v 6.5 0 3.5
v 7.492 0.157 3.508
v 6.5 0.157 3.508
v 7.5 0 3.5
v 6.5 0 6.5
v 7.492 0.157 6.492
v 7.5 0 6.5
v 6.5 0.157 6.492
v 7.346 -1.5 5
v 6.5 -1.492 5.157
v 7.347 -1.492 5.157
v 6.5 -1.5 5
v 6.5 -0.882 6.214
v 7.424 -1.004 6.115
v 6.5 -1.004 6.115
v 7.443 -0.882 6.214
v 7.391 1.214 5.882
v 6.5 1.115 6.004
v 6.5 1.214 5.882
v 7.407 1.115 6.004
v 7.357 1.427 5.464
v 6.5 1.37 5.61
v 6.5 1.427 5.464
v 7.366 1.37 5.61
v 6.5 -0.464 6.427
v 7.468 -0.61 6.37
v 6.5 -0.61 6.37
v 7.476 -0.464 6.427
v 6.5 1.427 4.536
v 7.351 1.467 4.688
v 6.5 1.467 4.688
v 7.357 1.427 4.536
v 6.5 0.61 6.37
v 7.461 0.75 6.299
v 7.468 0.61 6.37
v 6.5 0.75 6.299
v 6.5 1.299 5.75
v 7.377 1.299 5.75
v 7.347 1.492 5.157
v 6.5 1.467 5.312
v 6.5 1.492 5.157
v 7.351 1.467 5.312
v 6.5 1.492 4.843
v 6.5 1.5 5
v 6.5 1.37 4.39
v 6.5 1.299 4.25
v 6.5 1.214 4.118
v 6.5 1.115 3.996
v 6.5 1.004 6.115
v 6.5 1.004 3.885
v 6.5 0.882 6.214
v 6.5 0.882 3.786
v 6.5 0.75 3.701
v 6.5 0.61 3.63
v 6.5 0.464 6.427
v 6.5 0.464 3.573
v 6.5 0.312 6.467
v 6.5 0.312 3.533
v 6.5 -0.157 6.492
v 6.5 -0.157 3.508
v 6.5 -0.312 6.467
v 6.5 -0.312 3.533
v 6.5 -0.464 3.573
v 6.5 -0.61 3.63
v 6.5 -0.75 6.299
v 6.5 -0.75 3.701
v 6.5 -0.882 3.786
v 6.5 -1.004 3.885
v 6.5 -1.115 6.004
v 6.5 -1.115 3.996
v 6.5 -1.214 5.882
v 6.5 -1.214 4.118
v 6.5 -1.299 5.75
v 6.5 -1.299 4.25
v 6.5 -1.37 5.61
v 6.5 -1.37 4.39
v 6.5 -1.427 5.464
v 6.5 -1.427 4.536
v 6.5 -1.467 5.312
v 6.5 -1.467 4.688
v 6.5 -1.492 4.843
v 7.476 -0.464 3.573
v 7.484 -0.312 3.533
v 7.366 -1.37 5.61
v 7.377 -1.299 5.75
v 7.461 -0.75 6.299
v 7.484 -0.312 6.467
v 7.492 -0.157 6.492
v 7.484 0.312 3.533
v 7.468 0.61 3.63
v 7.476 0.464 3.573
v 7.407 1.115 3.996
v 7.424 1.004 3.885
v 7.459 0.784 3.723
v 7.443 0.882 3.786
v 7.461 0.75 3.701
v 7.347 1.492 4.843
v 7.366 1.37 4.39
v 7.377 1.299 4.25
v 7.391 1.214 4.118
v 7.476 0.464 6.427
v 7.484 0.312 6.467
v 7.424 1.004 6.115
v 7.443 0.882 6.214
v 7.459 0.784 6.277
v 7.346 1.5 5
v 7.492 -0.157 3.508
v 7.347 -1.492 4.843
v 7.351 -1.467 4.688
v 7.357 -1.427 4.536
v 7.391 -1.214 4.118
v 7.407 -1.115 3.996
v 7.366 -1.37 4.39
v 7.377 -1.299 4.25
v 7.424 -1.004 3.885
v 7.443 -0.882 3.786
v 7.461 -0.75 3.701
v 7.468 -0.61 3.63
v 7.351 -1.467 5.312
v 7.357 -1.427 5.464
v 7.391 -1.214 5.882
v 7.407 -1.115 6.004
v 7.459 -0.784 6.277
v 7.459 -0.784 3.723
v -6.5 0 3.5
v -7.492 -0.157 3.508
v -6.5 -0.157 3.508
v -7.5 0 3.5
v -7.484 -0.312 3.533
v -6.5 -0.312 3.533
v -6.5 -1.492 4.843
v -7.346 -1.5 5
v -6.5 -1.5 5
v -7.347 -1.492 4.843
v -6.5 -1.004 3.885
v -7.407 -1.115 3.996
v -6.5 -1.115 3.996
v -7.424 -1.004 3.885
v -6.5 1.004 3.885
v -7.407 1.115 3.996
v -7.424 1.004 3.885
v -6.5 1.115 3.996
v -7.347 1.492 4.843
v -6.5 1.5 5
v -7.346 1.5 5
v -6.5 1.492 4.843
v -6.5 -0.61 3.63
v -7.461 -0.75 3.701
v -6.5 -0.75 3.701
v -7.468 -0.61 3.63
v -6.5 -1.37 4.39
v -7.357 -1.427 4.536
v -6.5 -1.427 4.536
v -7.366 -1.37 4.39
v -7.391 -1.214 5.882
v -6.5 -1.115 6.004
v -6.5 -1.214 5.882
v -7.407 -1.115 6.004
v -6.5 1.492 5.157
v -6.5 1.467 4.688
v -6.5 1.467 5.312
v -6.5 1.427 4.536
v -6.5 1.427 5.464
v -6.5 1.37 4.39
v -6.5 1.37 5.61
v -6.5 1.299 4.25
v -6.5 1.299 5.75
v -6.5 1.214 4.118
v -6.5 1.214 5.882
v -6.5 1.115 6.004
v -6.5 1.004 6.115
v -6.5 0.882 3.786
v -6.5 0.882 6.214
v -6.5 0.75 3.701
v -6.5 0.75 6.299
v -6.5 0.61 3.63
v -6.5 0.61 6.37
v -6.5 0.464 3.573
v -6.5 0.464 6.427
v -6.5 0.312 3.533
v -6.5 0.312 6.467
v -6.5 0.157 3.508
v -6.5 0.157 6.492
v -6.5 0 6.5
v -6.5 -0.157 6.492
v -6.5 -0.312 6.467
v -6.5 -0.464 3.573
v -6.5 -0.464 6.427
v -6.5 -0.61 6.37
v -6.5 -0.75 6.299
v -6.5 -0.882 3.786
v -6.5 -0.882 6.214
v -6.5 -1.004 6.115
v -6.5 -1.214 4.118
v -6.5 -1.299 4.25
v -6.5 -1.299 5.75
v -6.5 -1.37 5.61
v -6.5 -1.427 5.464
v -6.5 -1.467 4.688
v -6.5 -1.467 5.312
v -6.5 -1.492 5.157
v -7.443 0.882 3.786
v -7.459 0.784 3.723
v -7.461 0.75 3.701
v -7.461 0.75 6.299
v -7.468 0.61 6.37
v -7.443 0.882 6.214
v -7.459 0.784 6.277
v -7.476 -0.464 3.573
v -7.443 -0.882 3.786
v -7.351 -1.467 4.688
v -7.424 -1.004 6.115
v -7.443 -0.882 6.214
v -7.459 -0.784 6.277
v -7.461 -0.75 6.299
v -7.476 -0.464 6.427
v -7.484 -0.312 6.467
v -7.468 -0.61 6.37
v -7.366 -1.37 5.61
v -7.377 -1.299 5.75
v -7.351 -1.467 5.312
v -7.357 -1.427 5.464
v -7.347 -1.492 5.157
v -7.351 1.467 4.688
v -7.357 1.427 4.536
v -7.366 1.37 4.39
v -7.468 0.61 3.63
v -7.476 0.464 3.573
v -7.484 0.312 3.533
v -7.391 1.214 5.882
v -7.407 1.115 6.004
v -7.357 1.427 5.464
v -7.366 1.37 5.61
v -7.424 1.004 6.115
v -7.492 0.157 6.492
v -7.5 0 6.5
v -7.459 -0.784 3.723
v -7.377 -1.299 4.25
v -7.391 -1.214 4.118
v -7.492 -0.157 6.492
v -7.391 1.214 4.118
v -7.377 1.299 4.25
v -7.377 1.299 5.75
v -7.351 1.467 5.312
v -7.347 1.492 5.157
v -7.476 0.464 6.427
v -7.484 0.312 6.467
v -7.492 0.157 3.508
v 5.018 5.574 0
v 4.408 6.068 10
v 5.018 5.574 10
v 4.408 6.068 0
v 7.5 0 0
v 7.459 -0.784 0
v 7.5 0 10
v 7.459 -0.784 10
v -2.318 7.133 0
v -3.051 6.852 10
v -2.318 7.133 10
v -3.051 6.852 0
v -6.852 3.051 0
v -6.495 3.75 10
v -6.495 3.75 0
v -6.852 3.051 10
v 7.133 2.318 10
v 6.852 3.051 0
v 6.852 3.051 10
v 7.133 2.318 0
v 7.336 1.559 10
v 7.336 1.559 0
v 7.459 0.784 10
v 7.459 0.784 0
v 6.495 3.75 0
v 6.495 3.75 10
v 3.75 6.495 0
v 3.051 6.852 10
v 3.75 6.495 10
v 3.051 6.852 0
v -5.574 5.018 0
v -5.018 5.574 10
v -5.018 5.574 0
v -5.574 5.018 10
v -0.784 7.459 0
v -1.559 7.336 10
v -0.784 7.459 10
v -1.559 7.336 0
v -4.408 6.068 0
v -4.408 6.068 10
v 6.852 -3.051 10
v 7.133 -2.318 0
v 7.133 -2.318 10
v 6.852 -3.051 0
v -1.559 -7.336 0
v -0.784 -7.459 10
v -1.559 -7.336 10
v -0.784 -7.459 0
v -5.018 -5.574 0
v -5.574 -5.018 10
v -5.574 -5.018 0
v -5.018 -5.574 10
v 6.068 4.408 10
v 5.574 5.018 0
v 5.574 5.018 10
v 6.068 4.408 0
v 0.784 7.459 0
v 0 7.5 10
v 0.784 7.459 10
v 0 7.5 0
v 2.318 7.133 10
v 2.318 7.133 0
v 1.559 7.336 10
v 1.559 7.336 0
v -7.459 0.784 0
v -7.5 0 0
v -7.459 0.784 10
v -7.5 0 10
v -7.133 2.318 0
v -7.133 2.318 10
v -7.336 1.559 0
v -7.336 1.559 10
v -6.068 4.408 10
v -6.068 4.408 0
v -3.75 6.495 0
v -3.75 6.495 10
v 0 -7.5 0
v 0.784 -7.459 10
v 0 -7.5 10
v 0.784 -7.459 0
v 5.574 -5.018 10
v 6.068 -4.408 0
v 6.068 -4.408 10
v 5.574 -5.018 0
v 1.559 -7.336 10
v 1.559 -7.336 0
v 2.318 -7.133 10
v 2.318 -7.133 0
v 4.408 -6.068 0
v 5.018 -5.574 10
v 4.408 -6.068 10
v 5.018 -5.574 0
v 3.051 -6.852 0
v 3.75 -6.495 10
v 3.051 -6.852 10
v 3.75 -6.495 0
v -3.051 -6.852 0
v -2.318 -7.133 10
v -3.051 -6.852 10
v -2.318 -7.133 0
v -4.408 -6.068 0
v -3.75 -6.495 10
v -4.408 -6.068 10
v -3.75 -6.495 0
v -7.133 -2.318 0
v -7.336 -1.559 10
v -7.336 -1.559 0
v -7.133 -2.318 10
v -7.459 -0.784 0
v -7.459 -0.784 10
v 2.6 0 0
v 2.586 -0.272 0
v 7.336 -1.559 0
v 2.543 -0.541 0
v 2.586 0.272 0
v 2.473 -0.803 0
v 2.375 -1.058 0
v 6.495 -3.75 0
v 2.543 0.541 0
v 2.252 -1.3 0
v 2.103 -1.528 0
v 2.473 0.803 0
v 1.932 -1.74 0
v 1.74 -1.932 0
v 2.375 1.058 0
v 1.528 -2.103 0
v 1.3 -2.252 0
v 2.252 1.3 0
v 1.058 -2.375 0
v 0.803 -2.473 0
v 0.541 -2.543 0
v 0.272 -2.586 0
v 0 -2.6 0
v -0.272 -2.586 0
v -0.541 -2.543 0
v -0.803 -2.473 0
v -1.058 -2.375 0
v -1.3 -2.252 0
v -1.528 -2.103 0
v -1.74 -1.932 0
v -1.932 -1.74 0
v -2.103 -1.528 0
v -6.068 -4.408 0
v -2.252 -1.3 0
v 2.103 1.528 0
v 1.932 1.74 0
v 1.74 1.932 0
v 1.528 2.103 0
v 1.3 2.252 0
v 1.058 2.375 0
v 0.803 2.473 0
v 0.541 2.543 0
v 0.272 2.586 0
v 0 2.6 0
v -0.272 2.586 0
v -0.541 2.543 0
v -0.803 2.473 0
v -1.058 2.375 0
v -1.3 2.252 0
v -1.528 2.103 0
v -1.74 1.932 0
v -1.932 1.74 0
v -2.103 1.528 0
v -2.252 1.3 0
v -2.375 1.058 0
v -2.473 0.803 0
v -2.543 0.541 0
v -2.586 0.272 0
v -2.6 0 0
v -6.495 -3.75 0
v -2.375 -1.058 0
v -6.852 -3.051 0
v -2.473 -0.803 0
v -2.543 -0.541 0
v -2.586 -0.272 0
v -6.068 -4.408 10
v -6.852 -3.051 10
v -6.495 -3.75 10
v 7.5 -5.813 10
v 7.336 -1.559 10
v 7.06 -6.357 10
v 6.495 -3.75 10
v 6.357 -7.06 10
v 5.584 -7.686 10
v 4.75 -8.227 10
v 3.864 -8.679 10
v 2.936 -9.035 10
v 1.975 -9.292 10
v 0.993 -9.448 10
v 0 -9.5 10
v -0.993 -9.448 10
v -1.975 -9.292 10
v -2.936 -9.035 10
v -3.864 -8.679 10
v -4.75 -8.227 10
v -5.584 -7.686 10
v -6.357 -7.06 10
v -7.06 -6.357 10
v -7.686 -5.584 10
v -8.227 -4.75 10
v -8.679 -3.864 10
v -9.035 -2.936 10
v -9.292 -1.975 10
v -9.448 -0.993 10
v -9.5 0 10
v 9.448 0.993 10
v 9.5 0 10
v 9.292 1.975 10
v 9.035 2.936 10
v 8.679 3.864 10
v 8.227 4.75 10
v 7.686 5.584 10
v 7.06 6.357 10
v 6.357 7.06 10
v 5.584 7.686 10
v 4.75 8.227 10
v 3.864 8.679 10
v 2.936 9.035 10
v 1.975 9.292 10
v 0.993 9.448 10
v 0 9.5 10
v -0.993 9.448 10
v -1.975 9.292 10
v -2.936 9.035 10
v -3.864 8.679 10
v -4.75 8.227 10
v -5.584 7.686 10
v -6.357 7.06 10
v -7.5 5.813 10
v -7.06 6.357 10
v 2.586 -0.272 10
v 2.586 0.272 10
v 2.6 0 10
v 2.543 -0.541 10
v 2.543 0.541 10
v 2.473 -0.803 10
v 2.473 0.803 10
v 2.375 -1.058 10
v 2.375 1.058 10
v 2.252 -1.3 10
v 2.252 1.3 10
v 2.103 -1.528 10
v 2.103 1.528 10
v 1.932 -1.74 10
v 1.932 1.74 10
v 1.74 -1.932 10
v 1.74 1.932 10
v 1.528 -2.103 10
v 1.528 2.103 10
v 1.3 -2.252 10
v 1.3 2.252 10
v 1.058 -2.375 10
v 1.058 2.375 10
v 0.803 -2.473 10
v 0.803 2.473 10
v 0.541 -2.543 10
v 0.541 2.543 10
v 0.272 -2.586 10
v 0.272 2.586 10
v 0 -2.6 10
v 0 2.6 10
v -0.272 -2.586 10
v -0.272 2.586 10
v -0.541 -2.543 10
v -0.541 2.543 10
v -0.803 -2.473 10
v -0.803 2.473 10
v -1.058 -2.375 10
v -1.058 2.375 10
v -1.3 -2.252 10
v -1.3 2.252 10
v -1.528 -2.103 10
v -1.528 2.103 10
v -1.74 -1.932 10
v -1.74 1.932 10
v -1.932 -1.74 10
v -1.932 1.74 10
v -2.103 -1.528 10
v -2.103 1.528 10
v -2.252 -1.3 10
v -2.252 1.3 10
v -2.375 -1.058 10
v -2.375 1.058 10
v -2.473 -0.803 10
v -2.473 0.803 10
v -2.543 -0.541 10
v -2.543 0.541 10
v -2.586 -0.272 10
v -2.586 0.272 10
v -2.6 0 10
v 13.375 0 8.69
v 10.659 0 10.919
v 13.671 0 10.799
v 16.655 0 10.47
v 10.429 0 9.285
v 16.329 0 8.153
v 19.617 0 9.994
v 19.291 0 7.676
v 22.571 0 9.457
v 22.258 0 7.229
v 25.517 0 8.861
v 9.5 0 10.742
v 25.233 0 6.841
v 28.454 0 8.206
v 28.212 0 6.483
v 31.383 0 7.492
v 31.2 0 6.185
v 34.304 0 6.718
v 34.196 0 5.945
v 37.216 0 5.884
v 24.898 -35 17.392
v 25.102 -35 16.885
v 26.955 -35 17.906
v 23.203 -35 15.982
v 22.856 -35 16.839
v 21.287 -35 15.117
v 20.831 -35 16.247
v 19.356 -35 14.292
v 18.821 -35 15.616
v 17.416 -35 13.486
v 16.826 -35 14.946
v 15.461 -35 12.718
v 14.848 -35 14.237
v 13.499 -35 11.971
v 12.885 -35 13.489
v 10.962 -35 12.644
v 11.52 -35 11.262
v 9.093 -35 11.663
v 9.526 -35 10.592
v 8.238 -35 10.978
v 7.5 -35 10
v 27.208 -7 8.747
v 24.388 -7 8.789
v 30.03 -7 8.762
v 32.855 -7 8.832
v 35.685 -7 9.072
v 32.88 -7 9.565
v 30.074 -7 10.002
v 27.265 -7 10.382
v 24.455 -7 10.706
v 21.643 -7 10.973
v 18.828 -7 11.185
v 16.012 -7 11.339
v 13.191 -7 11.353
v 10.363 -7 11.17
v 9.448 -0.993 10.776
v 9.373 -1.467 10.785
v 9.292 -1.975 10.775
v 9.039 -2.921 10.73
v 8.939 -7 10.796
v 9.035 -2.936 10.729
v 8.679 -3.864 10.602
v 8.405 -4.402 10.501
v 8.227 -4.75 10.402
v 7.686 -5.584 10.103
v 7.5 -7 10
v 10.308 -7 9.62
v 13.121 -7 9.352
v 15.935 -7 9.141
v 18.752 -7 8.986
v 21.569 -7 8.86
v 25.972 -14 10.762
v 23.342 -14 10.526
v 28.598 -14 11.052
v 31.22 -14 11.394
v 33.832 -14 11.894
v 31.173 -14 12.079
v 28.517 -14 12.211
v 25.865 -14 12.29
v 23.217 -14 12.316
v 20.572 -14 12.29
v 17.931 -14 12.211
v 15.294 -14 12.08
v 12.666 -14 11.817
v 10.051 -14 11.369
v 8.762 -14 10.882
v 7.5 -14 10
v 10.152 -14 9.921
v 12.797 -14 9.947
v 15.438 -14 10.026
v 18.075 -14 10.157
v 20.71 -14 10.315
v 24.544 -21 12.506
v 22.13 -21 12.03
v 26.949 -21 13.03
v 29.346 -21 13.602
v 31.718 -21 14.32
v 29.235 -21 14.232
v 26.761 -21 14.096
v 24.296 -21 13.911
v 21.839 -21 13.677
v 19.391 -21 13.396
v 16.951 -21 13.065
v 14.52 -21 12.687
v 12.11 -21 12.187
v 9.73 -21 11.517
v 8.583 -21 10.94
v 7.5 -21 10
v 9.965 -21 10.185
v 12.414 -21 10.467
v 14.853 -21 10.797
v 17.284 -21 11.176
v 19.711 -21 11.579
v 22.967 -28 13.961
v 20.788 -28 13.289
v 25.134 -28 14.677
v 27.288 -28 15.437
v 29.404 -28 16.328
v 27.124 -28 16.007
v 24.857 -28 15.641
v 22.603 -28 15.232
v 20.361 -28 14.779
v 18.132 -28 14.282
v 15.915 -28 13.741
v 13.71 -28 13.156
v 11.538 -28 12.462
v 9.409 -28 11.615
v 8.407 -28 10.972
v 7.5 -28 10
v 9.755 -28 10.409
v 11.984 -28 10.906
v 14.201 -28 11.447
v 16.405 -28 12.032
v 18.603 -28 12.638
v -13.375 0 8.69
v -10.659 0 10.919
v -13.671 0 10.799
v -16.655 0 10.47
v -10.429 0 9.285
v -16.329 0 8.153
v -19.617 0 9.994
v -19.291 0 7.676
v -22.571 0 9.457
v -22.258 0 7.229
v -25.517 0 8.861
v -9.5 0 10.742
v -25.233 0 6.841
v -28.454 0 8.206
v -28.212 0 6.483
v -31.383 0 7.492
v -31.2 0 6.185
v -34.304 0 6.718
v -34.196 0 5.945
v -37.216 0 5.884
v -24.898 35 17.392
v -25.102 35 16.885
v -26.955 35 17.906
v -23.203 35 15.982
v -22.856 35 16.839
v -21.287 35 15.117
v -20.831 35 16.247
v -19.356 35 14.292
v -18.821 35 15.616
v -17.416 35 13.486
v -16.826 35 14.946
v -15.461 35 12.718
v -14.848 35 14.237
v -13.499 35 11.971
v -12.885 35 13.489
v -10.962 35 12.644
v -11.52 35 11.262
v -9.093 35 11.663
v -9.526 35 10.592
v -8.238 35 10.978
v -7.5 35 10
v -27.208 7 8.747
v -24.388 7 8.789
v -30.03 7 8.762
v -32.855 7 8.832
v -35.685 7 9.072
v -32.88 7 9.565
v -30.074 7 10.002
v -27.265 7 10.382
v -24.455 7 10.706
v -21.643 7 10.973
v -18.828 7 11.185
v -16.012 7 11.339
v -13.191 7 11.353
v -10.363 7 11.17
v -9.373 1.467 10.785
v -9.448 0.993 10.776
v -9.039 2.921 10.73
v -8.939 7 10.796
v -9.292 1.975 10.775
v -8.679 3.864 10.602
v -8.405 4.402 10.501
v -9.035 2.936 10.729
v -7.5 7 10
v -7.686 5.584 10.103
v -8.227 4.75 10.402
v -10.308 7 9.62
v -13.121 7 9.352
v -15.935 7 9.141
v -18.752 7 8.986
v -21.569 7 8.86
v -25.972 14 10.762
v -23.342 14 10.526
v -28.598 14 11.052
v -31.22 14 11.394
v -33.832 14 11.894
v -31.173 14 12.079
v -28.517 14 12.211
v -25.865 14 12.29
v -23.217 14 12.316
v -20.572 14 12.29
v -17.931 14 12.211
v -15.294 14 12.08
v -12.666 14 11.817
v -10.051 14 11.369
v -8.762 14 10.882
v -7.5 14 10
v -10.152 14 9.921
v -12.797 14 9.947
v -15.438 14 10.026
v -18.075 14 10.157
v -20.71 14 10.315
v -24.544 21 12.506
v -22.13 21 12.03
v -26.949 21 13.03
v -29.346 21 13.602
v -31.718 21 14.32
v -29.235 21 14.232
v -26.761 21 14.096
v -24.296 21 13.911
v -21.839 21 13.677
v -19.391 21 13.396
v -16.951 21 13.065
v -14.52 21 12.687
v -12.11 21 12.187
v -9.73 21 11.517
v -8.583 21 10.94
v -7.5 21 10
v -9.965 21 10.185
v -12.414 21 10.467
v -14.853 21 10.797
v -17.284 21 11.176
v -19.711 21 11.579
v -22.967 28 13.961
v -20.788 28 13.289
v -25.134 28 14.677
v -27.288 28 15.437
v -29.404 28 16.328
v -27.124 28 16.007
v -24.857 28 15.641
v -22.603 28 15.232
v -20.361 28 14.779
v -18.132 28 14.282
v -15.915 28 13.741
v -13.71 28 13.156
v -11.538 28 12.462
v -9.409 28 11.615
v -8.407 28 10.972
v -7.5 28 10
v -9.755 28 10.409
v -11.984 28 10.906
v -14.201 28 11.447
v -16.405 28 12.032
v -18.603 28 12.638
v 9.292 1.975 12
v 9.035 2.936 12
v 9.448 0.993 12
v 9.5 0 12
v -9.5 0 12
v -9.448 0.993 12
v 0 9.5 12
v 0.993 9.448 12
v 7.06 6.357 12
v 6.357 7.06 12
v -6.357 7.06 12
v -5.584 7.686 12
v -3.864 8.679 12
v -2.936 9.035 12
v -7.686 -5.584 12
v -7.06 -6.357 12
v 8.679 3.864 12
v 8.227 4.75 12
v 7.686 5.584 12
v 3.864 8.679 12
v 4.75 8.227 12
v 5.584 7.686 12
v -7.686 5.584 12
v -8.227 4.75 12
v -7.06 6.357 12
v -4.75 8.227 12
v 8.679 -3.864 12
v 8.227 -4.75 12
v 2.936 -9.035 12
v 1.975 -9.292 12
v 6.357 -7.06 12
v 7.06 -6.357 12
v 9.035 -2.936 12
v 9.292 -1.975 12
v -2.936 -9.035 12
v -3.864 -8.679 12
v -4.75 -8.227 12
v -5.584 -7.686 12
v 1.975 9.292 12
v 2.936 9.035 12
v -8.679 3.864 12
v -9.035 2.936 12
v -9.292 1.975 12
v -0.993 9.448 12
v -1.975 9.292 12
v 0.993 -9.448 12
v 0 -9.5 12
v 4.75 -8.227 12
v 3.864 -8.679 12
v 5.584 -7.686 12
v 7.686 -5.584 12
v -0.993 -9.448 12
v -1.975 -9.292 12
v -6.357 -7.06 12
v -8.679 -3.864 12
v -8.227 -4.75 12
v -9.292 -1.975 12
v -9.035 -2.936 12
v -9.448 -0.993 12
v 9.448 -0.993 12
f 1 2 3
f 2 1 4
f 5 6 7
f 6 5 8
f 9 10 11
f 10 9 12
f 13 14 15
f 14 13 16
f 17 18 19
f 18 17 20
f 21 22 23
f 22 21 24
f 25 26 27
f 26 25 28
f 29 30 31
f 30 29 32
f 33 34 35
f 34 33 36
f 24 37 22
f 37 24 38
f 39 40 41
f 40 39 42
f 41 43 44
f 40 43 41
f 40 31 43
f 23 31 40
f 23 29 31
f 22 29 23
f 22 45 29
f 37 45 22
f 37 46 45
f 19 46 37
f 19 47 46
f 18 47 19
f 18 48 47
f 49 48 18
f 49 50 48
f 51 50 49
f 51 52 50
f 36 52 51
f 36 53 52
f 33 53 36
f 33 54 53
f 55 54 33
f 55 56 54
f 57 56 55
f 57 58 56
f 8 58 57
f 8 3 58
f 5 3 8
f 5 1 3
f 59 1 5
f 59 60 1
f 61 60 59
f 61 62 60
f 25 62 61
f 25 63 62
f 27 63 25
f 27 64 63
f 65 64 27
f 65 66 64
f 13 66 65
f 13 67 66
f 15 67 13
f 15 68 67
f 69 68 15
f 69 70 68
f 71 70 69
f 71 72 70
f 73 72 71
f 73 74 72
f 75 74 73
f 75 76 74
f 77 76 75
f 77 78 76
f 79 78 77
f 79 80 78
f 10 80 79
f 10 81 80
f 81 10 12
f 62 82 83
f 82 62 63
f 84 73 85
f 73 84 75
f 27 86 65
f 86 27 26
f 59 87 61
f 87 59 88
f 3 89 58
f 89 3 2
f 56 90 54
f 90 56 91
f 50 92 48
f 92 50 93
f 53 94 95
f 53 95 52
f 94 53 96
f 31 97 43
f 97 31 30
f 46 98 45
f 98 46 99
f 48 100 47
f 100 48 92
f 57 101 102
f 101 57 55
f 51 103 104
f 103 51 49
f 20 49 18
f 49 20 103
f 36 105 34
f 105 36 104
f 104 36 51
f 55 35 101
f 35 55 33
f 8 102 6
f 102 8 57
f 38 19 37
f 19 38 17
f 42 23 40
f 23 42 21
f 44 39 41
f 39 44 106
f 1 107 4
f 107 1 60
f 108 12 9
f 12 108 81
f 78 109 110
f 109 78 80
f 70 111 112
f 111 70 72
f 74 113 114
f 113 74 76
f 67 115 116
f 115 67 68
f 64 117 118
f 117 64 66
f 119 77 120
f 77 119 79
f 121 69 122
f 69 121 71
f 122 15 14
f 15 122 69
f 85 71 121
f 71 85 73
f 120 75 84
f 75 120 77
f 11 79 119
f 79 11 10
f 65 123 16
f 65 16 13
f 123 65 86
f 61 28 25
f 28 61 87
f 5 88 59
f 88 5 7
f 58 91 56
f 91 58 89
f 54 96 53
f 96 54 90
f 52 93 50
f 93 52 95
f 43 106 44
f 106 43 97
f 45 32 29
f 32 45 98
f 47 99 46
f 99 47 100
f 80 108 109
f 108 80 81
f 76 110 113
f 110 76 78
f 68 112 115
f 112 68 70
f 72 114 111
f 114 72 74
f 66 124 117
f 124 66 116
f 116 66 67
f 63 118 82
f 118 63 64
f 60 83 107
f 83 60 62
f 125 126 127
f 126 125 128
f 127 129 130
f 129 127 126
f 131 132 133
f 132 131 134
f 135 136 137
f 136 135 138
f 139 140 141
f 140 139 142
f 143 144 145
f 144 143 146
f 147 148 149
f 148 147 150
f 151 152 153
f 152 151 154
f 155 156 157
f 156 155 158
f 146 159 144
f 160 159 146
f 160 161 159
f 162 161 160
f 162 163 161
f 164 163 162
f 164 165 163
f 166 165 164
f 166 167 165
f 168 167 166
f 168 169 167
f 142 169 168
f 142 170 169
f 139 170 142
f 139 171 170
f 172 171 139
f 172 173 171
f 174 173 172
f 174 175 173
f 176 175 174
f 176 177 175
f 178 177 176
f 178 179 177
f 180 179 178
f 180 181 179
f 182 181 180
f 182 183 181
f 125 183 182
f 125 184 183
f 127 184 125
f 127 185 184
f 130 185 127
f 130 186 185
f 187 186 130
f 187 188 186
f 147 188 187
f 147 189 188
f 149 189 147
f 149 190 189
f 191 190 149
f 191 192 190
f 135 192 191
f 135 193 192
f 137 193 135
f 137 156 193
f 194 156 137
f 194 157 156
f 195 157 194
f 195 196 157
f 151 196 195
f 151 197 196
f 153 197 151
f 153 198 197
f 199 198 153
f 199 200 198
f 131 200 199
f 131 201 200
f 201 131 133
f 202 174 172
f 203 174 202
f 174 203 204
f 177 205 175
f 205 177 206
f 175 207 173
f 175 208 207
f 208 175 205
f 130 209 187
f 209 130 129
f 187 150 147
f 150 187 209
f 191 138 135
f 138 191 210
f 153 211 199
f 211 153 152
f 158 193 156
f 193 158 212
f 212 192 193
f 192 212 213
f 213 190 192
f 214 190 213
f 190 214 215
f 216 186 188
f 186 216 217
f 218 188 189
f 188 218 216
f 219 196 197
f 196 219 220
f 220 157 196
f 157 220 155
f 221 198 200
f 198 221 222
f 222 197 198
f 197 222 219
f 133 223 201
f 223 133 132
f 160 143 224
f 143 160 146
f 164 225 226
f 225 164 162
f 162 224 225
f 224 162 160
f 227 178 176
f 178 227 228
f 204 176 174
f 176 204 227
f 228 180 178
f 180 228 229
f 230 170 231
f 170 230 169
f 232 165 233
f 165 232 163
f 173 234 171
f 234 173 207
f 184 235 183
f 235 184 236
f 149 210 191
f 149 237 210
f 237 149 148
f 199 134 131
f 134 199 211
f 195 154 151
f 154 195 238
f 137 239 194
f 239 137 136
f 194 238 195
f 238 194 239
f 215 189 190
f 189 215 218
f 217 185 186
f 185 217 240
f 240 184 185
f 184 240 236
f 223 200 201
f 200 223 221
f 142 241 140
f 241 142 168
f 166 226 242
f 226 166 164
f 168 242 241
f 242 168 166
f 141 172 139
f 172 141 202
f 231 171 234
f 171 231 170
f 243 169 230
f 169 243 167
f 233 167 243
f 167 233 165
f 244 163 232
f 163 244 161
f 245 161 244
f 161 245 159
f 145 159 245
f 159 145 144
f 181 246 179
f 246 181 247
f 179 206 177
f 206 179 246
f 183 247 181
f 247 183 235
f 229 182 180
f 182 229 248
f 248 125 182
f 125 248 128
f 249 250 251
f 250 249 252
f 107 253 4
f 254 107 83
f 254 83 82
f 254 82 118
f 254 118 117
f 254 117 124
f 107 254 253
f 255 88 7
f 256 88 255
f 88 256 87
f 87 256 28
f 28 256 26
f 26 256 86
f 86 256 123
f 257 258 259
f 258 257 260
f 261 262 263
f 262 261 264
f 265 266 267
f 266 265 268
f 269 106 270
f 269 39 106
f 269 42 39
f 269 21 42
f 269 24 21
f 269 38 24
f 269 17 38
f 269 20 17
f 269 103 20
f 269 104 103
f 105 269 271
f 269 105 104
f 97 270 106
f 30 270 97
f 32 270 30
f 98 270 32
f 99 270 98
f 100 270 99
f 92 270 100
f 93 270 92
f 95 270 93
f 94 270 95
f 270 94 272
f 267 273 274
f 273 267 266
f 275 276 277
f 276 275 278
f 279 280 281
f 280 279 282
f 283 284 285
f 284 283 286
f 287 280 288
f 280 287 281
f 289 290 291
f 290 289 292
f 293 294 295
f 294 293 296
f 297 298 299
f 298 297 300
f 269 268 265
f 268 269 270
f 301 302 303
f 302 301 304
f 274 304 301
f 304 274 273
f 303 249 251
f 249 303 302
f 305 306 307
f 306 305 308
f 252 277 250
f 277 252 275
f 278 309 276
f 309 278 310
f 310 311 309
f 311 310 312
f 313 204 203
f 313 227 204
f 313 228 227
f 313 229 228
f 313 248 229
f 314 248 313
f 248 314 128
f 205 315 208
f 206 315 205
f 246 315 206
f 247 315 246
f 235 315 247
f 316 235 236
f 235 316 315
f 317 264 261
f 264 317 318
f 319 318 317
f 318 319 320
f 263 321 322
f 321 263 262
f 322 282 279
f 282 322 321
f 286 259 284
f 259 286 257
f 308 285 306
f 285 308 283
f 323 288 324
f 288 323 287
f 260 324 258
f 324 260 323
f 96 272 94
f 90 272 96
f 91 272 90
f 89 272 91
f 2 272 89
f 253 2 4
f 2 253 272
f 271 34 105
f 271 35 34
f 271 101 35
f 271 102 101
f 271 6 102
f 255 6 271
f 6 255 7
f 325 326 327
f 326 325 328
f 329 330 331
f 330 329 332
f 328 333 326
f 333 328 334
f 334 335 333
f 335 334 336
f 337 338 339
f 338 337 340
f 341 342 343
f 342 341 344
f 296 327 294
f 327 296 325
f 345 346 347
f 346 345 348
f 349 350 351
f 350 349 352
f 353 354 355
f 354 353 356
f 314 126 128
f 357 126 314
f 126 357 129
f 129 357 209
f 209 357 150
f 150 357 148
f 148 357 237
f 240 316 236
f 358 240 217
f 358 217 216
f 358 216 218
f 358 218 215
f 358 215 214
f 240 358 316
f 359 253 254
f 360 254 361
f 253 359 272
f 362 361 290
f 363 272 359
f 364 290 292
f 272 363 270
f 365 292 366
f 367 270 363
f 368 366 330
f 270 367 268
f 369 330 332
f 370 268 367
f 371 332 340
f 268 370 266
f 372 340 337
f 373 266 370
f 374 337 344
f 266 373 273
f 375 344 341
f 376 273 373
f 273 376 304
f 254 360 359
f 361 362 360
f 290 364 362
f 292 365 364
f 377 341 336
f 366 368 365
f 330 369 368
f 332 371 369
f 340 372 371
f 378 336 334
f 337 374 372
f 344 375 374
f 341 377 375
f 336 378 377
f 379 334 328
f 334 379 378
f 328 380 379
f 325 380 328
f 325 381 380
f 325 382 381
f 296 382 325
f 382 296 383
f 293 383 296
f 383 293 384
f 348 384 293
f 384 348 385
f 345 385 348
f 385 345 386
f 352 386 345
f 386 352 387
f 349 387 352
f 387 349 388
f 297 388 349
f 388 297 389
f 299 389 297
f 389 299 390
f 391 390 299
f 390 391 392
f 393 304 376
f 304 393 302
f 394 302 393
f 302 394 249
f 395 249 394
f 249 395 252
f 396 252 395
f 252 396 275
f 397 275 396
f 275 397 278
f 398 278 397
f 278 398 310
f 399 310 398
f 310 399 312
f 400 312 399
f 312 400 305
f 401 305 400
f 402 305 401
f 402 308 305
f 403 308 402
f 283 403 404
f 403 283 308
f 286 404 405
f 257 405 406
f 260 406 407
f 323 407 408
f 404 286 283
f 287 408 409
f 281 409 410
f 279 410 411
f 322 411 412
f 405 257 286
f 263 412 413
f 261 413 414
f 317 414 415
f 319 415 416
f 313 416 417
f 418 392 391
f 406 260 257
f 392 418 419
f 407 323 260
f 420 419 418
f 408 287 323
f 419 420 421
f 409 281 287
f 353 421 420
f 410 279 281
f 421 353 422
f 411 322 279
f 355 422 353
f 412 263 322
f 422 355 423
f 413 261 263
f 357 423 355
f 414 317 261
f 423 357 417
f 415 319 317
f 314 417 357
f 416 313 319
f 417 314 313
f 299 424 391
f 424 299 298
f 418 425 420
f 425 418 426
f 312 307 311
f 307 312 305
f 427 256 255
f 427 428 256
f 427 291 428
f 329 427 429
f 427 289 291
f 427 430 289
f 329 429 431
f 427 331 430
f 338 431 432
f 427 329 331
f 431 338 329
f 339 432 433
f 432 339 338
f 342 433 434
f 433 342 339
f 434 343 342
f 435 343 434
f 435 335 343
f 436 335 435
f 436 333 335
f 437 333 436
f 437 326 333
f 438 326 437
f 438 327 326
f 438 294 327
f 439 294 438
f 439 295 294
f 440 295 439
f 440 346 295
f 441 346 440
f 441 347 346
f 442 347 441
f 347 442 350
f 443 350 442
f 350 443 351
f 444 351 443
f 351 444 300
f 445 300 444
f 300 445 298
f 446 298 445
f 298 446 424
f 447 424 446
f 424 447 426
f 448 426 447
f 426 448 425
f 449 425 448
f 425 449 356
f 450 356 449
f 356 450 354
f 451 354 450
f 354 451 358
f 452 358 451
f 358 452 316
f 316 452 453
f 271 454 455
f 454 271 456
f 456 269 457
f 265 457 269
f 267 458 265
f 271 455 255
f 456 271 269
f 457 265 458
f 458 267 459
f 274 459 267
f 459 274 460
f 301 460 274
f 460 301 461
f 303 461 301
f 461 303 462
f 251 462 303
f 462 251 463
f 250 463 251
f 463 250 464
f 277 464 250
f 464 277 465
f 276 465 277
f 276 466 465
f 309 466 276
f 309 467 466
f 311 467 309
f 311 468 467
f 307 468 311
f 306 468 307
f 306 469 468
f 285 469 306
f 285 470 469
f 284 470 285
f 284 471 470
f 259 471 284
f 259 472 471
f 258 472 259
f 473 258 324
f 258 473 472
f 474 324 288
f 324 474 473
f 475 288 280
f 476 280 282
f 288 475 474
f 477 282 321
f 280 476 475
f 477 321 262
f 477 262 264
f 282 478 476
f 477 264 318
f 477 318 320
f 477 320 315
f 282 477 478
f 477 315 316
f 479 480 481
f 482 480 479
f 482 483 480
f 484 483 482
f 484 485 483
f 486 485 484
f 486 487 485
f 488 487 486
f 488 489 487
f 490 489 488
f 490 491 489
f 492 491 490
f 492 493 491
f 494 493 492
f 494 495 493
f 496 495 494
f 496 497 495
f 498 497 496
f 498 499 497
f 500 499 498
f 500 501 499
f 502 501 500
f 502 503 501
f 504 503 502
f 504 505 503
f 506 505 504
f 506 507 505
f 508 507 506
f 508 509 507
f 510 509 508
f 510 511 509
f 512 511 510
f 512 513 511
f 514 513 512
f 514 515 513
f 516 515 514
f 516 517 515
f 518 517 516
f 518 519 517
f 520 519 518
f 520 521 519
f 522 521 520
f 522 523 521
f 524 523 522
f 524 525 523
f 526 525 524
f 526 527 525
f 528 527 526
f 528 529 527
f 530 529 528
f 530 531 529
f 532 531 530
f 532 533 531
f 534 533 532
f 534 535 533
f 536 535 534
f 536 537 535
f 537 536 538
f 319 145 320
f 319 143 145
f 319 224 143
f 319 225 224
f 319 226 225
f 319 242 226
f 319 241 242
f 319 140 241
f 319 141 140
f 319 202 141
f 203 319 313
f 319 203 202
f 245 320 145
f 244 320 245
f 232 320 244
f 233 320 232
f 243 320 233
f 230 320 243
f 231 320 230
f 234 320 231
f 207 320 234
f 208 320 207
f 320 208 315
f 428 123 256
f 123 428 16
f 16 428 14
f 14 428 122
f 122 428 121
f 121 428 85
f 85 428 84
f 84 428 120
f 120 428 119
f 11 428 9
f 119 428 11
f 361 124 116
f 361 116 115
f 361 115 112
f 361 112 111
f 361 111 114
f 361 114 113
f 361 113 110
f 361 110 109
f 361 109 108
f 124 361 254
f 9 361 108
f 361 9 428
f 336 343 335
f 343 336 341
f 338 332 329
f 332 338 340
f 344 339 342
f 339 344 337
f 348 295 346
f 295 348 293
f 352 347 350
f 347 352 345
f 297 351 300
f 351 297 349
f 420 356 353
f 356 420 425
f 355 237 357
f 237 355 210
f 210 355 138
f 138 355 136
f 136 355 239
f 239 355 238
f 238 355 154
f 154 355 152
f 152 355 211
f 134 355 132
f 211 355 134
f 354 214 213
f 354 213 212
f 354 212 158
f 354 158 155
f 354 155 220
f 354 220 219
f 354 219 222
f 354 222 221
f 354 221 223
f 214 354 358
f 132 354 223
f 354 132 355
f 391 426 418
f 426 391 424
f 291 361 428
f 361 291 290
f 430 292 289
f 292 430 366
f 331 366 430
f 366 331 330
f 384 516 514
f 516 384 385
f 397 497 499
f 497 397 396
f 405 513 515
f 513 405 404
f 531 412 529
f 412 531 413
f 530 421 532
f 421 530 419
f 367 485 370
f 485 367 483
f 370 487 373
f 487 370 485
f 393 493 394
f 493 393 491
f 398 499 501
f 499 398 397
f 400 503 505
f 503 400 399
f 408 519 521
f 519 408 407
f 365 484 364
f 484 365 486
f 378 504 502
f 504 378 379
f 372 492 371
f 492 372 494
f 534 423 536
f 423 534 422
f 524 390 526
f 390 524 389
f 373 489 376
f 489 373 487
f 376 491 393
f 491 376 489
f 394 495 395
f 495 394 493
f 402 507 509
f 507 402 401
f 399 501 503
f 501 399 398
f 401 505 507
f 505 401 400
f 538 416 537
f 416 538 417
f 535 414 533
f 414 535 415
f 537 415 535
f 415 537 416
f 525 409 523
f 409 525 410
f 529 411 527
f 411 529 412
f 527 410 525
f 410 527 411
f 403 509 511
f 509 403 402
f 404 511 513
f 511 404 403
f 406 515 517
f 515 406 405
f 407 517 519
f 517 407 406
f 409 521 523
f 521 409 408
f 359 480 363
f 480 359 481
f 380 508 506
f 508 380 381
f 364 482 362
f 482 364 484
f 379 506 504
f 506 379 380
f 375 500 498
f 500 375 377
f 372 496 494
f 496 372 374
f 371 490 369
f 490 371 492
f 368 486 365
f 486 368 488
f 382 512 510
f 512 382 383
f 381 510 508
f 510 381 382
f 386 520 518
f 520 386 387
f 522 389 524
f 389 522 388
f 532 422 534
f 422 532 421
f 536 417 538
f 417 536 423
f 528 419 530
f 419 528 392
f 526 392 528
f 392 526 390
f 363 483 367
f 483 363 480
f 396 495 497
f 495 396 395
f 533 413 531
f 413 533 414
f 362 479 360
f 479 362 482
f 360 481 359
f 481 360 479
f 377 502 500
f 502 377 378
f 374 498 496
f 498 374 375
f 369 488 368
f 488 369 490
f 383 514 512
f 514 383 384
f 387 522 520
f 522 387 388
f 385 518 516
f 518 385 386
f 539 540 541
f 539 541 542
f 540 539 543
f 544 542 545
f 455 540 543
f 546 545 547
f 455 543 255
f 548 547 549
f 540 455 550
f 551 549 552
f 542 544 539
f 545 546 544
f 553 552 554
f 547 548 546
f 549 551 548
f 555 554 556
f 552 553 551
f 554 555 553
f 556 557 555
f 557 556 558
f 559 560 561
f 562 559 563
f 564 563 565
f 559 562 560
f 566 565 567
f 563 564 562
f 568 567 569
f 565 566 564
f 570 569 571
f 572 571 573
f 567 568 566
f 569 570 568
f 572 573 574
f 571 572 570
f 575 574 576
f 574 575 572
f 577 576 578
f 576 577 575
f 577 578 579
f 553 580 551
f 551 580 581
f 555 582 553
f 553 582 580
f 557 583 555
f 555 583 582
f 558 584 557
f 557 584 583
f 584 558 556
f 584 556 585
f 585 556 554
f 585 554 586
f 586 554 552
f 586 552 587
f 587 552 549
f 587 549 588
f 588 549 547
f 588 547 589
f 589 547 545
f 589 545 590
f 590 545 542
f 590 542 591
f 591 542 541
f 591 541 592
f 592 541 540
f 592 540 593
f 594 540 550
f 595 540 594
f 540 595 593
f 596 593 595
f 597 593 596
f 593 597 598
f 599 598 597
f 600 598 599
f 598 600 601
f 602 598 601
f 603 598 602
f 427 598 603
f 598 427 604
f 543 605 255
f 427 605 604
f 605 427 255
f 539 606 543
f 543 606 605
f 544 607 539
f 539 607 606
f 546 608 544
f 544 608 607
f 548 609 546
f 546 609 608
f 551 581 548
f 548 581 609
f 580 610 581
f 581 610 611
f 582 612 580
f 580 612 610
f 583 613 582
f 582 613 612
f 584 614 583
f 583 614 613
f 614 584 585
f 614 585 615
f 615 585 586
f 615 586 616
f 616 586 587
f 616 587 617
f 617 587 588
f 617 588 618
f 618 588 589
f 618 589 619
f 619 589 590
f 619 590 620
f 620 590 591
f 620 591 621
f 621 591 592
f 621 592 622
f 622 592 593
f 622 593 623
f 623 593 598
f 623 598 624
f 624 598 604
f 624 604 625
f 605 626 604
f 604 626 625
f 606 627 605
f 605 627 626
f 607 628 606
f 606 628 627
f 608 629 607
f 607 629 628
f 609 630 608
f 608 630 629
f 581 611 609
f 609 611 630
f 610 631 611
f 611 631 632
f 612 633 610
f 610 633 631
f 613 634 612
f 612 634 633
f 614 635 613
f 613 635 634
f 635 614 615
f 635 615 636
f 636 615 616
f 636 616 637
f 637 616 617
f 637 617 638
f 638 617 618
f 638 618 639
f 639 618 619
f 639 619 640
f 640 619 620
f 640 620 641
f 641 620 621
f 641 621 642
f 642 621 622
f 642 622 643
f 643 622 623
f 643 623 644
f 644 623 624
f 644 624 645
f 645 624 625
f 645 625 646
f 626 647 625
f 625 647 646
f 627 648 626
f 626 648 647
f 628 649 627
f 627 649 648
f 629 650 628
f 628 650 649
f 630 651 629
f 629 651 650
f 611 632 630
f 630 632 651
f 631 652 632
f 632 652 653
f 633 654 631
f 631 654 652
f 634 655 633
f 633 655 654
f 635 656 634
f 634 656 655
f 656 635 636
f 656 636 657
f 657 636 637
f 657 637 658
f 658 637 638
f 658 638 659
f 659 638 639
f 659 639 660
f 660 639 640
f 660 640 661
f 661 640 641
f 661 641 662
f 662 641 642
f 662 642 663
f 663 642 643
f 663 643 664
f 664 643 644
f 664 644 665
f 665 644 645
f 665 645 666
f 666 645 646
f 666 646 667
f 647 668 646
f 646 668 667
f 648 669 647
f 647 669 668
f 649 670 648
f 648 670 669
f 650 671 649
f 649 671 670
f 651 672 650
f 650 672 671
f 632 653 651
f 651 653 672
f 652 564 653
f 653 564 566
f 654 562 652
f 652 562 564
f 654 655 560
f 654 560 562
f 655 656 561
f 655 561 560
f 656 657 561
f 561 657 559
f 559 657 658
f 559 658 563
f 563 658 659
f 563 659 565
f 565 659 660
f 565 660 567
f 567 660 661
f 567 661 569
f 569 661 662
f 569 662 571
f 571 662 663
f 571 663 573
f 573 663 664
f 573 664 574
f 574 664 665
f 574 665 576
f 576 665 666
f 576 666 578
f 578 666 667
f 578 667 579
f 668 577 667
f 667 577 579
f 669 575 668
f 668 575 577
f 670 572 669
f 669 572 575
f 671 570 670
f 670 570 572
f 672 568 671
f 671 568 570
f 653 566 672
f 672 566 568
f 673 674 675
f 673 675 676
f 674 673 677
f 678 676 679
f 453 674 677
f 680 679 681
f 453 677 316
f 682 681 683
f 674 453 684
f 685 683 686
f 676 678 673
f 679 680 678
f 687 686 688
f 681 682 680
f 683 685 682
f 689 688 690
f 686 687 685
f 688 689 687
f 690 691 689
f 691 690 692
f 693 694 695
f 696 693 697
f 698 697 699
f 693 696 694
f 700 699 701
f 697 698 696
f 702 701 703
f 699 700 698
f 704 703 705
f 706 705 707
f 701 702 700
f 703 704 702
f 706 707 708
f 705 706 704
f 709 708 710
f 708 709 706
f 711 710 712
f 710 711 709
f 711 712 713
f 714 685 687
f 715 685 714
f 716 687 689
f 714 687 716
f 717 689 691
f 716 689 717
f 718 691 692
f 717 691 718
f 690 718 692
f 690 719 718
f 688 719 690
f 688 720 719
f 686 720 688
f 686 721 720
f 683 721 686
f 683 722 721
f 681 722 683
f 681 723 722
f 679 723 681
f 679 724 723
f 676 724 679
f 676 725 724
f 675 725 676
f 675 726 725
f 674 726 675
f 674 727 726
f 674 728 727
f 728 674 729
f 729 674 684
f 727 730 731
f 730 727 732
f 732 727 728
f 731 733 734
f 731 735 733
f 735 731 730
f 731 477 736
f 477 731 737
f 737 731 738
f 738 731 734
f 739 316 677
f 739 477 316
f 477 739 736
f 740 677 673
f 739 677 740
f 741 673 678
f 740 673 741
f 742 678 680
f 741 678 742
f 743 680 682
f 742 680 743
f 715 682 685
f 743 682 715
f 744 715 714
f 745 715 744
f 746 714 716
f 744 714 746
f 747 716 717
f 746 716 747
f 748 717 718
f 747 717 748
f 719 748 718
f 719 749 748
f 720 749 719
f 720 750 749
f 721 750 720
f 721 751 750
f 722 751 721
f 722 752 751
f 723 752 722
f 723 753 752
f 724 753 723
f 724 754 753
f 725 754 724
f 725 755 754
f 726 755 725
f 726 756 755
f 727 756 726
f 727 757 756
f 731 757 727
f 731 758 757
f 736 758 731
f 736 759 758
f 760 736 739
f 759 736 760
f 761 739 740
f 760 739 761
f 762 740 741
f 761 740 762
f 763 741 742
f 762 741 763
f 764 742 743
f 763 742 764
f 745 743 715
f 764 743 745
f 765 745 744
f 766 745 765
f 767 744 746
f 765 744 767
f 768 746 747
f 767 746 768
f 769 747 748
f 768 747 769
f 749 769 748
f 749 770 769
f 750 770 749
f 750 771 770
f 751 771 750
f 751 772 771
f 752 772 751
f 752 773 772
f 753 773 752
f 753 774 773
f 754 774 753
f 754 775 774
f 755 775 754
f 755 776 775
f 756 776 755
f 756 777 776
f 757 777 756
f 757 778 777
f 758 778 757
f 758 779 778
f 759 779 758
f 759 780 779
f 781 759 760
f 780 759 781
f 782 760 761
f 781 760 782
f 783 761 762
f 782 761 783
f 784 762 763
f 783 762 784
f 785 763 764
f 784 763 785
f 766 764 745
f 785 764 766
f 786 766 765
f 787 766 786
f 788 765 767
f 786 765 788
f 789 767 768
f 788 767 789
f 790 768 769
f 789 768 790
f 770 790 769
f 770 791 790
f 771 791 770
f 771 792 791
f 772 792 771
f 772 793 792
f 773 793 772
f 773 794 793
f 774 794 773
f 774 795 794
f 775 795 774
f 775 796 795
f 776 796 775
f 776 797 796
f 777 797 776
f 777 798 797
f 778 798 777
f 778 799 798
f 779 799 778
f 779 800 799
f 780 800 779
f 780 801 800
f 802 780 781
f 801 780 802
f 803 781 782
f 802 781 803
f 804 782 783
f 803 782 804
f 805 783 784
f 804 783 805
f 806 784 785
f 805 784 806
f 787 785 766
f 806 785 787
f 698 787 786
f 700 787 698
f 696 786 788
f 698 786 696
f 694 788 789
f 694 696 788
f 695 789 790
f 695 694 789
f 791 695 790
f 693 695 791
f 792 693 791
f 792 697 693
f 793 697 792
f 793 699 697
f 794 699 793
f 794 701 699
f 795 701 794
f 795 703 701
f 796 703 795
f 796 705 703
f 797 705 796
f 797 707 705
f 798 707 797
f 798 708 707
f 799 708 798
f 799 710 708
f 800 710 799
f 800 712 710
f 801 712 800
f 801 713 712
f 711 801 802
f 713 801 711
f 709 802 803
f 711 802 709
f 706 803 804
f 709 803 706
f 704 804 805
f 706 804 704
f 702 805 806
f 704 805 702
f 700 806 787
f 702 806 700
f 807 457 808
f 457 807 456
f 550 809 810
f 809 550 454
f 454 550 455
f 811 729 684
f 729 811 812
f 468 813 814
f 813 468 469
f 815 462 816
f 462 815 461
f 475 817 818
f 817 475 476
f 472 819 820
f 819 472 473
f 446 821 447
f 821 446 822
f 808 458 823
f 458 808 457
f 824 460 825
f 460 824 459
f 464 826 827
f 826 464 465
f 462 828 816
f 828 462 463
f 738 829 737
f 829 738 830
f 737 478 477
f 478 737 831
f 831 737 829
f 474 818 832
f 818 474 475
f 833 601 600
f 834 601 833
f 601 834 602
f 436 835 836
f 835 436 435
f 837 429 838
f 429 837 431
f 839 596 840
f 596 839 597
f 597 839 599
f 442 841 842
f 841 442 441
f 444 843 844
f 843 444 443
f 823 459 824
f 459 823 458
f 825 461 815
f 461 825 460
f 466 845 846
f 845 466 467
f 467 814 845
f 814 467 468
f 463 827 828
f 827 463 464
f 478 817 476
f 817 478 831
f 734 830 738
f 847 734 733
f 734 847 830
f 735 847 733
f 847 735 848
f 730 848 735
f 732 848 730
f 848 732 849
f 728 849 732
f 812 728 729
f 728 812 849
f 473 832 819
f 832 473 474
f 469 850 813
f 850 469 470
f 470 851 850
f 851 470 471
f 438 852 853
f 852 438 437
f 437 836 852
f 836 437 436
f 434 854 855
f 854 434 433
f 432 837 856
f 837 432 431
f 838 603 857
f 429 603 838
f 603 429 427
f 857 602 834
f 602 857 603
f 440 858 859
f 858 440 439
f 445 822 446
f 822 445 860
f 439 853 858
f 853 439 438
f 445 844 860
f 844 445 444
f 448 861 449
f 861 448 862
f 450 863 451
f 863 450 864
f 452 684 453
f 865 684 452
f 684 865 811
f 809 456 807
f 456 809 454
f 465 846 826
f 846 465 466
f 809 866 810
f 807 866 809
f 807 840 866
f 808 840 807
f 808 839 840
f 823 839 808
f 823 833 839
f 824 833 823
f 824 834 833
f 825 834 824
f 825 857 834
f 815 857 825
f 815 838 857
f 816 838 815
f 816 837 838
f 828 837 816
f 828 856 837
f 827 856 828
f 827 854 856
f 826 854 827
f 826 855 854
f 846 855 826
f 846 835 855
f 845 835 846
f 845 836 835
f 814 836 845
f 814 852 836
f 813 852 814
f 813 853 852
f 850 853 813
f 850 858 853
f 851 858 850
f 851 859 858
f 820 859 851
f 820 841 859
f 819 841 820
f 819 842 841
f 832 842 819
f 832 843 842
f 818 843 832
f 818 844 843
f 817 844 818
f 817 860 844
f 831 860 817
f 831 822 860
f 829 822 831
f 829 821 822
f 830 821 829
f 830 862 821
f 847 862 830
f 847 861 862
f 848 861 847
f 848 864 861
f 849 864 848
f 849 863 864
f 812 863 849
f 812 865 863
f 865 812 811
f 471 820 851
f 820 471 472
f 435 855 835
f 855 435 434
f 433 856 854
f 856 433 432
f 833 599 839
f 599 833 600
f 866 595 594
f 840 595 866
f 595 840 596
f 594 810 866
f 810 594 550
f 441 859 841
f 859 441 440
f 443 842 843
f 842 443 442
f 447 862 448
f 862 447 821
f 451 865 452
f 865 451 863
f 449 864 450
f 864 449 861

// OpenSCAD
/*
 * COMPLETE MOTOR + IMPELLER ASSEMBLY
 * For CFD fluid testing and visualization
 * 
 * This model includes:
 *   - Brushless motor (2204-2206 size)
 *   - Motor shaft (5mm)
 *   - Impeller hub
 *   - 3 impeller variants (bladeless, AI-blades, hybrid)
 *   - Mounting plate
 * 
 * Usage:
 *   - Render full assembly: F6
 *   - Export for CFD: Set EXPORT_MODE = "impeller_only"
 *   - Change design: Set IMPELLER_TYPE = "bladeless" | "bladed" | "hybrid"
 */

// ============================================================================
// CONFIGURATION PARAMETERS (AI-Optimizable)
// ============================================================================

// General Settings
$fn = 60;  // Resolution for CFD export (increase to 100 for final)

// Export Mode
EXPORT_MODE = "impeller_only";  // Options: "full_assembly", "impeller_only", "motor_only"

// Impeller Type
IMPELLER_TYPE = "bladed";  // Options: "bladeless", "bladed", "hybrid"

// Motor Specifications (2204-2206 brushless)
MOTOR_DIAMETER = 28;         // mm
MOTOR_HEIGHT = 25;           // mm
MOTOR_SHAFT_DIAMETER = 5;    // mm (standard)
MOTOR_SHAFT_LENGTH = 15;     // mm (extends above motor)
MOTOR_MOUNT_PATTERN = 16;    // mm (16x16 or 19x19 common)
MOTOR_SCREW_DIAMETER = 3;    // M3 screws

// Impeller Parameters - BLADELESS
BLADELESS_OUTER_DIAMETER = 90;    // mm
BLADELESS_AIR_GAP = 0.8;          // mm (optimize: 0.6-1.2)
BLADELESS_THROAT_RATIO = 0.72;    // (optimize: 0.65-0.80)
BLADELESS_EXPANSION_ANGLE = 18;   // degrees (optimize: 12-25)
BLADELESS_RING_THICKNESS = 3;     // mm (optimize: 2-4)
BLADELESS_HEIGHT = 24;            // mm

// Impeller Parameters - BLADED
BLADED_DIAMETER = 85;
BLADED_HUB_DIAMETER = 15;         // mm (optimize: 12-20)
BLADED_BLADE_COUNT = 2;
BLADED_ROOT_CHORD = 30;
BLADED_TIP_CHORD_RATIO = 0.7;    // (optimize: 0.6-0.8)
BLADED_BLADE_THICKNESS = 2;       // mm (optimize: 1.5-3)
BLADED_BLADE_TWIST = -30;
BLADED_ATTACK_ANGLE = -8;
BLADED_BLADE_HEIGHT = 12;         // mm (optimize: 10-15)

// Hub Parameters
HUB_DIAMETER = 15;
HUB_HEIGHT = 10;
HUB_SET_SCREW_DIAMETER = 3;  // M3 set screw

// Mounting Plate
PLATE_SIZE = 50;
PLATE_THICKNESS = 3;

// ============================================================================
// MOTOR MODEL
// ============================================================================

module brushless_motor_2204() {
    color("DarkSlateGray") {
        // Motor can (bell)
        difference() {
            cylinder(h=MOTOR_HEIGHT, d=MOTOR_DIAMETER);
            
            // Hollow inside (weight reduction visualization)
            translate([0, 0, -0.5])
                cylinder(h=MOTOR_HEIGHT - 5, d=MOTOR_DIAMETER - 4);
            
            // Mounting holes
            for(i = [0:3]) {
                rotate([0, 0, i * 90])
                    translate([MOTOR_MOUNT_PATTERN/2, 0, MOTOR_HEIGHT/2])
                        rotate([90, 0, 0])
                            cylinder(h=MOTOR_DIAMETER, d=MOTOR_SCREW_DIAMETER, center=true);
            }
        }
        
        // Motor base
        translate([0, 0, -3])
            cylinder(h=3, d=MOTOR_DIAMETER - 2);
    }
    
    // Motor shaft
    color("Silver")
        translate([0, 0, MOTOR_HEIGHT])
            cylinder(h=MOTOR_SHAFT_LENGTH, d=MOTOR_SHAFT_DIAMETER);
    
    // Shaft tip (for hub attachment)
    color("Silver")
        translate([0, 0, MOTOR_HEIGHT + MOTOR_SHAFT_LENGTH])
            cylinder(h=2, d=MOTOR_SHAFT_DIAMETER - 0.5);
}

// ============================================================================
// IMPELLER HUB
// ============================================================================

module impeller_hub() {
    color("Gray")
    difference() {
        // Hub body
        cylinder(h=HUB_HEIGHT, d=HUB_DIAMETER);
        
        // Shaft hole (5mm + 0.2mm clearance)
        translate([0, 0, -0.5])
            cylinder(h=HUB_HEIGHT + 1, d=MOTOR_SHAFT_DIAMETER + 0.2);
        
        // Set screw holes (2x for balance)
        for(i = [0:1]) {
            rotate([0, 0, i * 180])
                translate([HUB_DIAMETER/2 - 1, 0, HUB_HEIGHT/2])
                    rotate([0, 90, 0])
                        cylinder(h=5, d=HUB_SET_SCREW_DIAMETER);
        }
    }
}

// ============================================================================
// BLADELESS IMPELLER (Dyson-style)
// ============================================================================

module bladeless_impeller() {
    outer_r = BLADELESS_OUTER_DIAMETER / 2;
    throat_r = outer_r * BLADELESS_THROAT_RATIO;
    gap = BLADELESS_AIR_GAP;
    
    color("SkyBlue", 0.7)
    difference() {
        // Outer ring
        rotate_extrude()
            translate([outer_r - BLADELESS_RING_THICKNESS/2, BLADELESS_HEIGHT/2, 0])
                circle(d=BLADELESS_RING_THICKNESS + BLADELESS_HEIGHT);
        
        // Inner air gap (critical for Coanda effect)
        rotate_extrude()
            translate([outer_r - gap - BLADELESS_RING_THICKNESS/2, BLADELESS_HEIGHT/2, 0])
                circle(d=BLADELESS_RING_THICKNESS + BLADELESS_HEIGHT - 2*gap);
    }
    
    // Base plate (connects to hub)
    color("SkyBlue", 0.7)
    translate([0, 0, -2])
        difference() {
            cylinder(h=2, d=outer_r * 2);
            translate([0, 0, -0.5])
                cylinder(h=3, d=HUB_DIAMETER + 1);
        }
    
    // Air inlet (bell-shaped for smooth flow)
    color("SkyBlue", 0.7)
    translate([0, 0, -2]) {
        difference() {
            cylinder(h=15, d1=throat_r * 2, d2=outer_r * 1.8);
            translate([0, 0, -0.5])
                cylinder(h=16, d1=throat_r * 2 - 3, d2=outer_r * 1.8 - 3);
        }
    }
}

// ============================================================================
// AI-OPTIMIZED BLADED IMPELLER (NACA 2412 profile)
// ============================================================================

module naca_2412_blade(chord, height, twist_angle, attack_angle) {
    // Simplified NACA 2412 airfoil profile
    // Using parametric approximation for 3D printing
    
    color("LightSteelBlue", 0.8)
    linear_extrude(height=height, twist=twist_angle, scale=BLADED_TIP_CHORD_RATIO) {
        rotate([0, 0, attack_angle])
        polygon([
            // Upper surface (cambered)
            [0, 0],
            [chord * 0.05, chord * 0.03],
            [chord * 0.1, chord * 0.045],
            [chord * 0.2, chord * 0.055],
            [chord * 0.3, chord * 0.058],
            [chord * 0.4, chord * 0.056],
            [chord * 0.5, chord * 0.052],
            [chord * 0.6, chord * 0.046],
            [chord * 0.7, chord * 0.038],
            [chord * 0.8, chord * 0.028],
            [chord * 0.9, chord * 0.016],
            [chord * 1.0, chord * 0.002],
            // Lower surface (less cambered)
            [chord * 0.9, -chord * 0.010],
            [chord * 0.8, -chord * 0.016],
            [chord * 0.7, -chord * 0.020],
            [chord * 0.6, -chord * 0.022],
            [chord * 0.5, -chord * 0.023],
            [chord * 0.4, -chord * 0.022],
            [chord * 0.3, -chord * 0.020],
            [chord * 0.2, -chord * 0.016],
            [chord * 0.1, -chord * 0.010],
            [chord * 0.05, -chord * 0.005],
        ]);
    }
}

module bladed_impeller() {
    // Blades
    for(i = [0 : BLADED_BLADE_COUNT - 1]) {
        rotate([0, 0, i * (360 / BLADED_BLADE_COUNT)])
            translate([BLADED_HUB_DIAMETER/2, 0, 0])
                rotate([90, 0, 0])
                    naca_2412_blade(
                        BLADED_ROOT_CHORD, 
                        (BLADED_DIAMETER - BLADED_HUB_DIAMETER) / 2,
                        BLADED_BLADE_TWIST,
                        BLADED_ATTACK_ANGLE
                    );
    }
    
    // Hub disk (connects blades)
    color("LightSteelBlue", 0.8)
    cylinder(h=2, d=BLADED_HUB_DIAMETER + 4);
}

// ============================================================================
// HYBRID IMPELLER (Blades inside bladeless ring)
// ============================================================================

module hybrid_impeller() {
    // Outer bladeless ring
    bladeless_impeller();
    
    // Inner bladed impeller (scaled down to fit)
    scale([0.85, 0.85, 1])
        bladed_impeller();
}

// ============================================================================
// MOUNTING PLATE
// ============================================================================

module mounting_plate() {
    color("DimGray")
    difference() {
        // Base plate
        translate([-PLATE_SIZE/2, -PLATE_SIZE/2, 0])
            cube([PLATE_SIZE, PLATE_SIZE, PLATE_THICKNESS]);
        
        // Center hole for motor shaft
        translate([0, 0, -0.5])
            cylinder(h=PLATE_THICKNESS + 1, d=MOTOR_DIAMETER + 2);
        
        // Motor mounting holes
        for(i = [0:3]) {
            rotate([0, 0, i * 90])
                translate([MOTOR_MOUNT_PATTERN/2, 0, -0.5])
                    cylinder(h=PLATE_THICKNESS + 1, d=MOTOR_SCREW_DIAMETER);
        }
    }
}

// ============================================================================
// COMPLETE ASSEMBLY
// ============================================================================

module complete_assembly() {
    // Mounting plate (bottom)
    translate([0, 0, -PLATE_THICKNESS])
        mounting_plate();
    
    // Motor
    translate([0, 0, 0])
        brushless_motor_2204();
    
    // Hub (on shaft)
    translate([0, 0, MOTOR_HEIGHT + MOTOR_SHAFT_LENGTH - 2])
        impeller_hub();
    
    // Impeller (on hub)
    translate([0, 0, MOTOR_HEIGHT + MOTOR_SHAFT_LENGTH + HUB_HEIGHT]) {
        if (IMPELLER_TYPE == "bladeless") {
            bladeless_impeller();
        } else if (IMPELLER_TYPE == "bladed") {
            bladed_impeller();
        } else if (IMPELLER_TYPE == "hybrid") {
            hybrid_impeller();
        }
    }
}

// ============================================================================
// RENDER BASED ON EXPORT MODE
// ============================================================================

if (EXPORT_MODE == "full_assembly") {
    complete_assembly();
} 
else if (EXPORT_MODE == "impeller_only") {
    // For CFD testing - impeller + hub only
    impeller_hub();
    translate([0, 0, HUB_HEIGHT]) {
        if (IMPELLER_TYPE == "bladeless") {
            bladeless_impeller();
        } else if (IMPELLER_TYPE == "bladed") {
            bladed_impeller();
        } else if (IMPELLER_TYPE == "hybrid") {
            hybrid_impeller();
        }
    }
}
else if (EXPORT_MODE == "motor_only") {
    brushless_motor_2204();
}

// ============================================================================
// ANNOTATIONS FOR VISUALIZATION
// ============================================================================

// Uncomment to show dimensions
/*
color("Red", 0.3)
translate([BLADED_DIAMETER/2 + 10, 0, 20])
    text(str("Ø", BLADED_DIAMETER, "mm"), size=5, halign="left");

color("Green", 0.3)
translate([0, BLADED_DIAMETER/2 + 10, 20])
    text(str(BLADED_BLADE_COUNT, " blades"), size=5, halign="center");
*/

// ============================================================================
// EXPORT NOTES
// ============================================================================

/*
 * TO EXPORT FOR CFD TESTING:
 * 
 * 1. Set EXPORT_MODE = "impeller_only"
 * 2. Set IMPELLER_TYPE = "bladeless" (or "bladed" or "hybrid")
 * 3. Press F6 to render
 * 4. File → Export → Export as STL
 * 5. Use filename: impeller_bladeless_fn60.stl
 * 
 * FOR OPTIMIZATION:
 * - Modify parameters at top (marked with "optimize:")
 * - Re-render and export
 * - Upload to SimScale for CFD
 * - Compare results
 * 
 * RECOMMENDED CFD SETTINGS:
 * - Solver: k-omega SST
 * - RPM: 5000, 7000, 9000
 * - Mesh: 3-5M cells
 * - Boundary: Rotating zone on impeller
 */
